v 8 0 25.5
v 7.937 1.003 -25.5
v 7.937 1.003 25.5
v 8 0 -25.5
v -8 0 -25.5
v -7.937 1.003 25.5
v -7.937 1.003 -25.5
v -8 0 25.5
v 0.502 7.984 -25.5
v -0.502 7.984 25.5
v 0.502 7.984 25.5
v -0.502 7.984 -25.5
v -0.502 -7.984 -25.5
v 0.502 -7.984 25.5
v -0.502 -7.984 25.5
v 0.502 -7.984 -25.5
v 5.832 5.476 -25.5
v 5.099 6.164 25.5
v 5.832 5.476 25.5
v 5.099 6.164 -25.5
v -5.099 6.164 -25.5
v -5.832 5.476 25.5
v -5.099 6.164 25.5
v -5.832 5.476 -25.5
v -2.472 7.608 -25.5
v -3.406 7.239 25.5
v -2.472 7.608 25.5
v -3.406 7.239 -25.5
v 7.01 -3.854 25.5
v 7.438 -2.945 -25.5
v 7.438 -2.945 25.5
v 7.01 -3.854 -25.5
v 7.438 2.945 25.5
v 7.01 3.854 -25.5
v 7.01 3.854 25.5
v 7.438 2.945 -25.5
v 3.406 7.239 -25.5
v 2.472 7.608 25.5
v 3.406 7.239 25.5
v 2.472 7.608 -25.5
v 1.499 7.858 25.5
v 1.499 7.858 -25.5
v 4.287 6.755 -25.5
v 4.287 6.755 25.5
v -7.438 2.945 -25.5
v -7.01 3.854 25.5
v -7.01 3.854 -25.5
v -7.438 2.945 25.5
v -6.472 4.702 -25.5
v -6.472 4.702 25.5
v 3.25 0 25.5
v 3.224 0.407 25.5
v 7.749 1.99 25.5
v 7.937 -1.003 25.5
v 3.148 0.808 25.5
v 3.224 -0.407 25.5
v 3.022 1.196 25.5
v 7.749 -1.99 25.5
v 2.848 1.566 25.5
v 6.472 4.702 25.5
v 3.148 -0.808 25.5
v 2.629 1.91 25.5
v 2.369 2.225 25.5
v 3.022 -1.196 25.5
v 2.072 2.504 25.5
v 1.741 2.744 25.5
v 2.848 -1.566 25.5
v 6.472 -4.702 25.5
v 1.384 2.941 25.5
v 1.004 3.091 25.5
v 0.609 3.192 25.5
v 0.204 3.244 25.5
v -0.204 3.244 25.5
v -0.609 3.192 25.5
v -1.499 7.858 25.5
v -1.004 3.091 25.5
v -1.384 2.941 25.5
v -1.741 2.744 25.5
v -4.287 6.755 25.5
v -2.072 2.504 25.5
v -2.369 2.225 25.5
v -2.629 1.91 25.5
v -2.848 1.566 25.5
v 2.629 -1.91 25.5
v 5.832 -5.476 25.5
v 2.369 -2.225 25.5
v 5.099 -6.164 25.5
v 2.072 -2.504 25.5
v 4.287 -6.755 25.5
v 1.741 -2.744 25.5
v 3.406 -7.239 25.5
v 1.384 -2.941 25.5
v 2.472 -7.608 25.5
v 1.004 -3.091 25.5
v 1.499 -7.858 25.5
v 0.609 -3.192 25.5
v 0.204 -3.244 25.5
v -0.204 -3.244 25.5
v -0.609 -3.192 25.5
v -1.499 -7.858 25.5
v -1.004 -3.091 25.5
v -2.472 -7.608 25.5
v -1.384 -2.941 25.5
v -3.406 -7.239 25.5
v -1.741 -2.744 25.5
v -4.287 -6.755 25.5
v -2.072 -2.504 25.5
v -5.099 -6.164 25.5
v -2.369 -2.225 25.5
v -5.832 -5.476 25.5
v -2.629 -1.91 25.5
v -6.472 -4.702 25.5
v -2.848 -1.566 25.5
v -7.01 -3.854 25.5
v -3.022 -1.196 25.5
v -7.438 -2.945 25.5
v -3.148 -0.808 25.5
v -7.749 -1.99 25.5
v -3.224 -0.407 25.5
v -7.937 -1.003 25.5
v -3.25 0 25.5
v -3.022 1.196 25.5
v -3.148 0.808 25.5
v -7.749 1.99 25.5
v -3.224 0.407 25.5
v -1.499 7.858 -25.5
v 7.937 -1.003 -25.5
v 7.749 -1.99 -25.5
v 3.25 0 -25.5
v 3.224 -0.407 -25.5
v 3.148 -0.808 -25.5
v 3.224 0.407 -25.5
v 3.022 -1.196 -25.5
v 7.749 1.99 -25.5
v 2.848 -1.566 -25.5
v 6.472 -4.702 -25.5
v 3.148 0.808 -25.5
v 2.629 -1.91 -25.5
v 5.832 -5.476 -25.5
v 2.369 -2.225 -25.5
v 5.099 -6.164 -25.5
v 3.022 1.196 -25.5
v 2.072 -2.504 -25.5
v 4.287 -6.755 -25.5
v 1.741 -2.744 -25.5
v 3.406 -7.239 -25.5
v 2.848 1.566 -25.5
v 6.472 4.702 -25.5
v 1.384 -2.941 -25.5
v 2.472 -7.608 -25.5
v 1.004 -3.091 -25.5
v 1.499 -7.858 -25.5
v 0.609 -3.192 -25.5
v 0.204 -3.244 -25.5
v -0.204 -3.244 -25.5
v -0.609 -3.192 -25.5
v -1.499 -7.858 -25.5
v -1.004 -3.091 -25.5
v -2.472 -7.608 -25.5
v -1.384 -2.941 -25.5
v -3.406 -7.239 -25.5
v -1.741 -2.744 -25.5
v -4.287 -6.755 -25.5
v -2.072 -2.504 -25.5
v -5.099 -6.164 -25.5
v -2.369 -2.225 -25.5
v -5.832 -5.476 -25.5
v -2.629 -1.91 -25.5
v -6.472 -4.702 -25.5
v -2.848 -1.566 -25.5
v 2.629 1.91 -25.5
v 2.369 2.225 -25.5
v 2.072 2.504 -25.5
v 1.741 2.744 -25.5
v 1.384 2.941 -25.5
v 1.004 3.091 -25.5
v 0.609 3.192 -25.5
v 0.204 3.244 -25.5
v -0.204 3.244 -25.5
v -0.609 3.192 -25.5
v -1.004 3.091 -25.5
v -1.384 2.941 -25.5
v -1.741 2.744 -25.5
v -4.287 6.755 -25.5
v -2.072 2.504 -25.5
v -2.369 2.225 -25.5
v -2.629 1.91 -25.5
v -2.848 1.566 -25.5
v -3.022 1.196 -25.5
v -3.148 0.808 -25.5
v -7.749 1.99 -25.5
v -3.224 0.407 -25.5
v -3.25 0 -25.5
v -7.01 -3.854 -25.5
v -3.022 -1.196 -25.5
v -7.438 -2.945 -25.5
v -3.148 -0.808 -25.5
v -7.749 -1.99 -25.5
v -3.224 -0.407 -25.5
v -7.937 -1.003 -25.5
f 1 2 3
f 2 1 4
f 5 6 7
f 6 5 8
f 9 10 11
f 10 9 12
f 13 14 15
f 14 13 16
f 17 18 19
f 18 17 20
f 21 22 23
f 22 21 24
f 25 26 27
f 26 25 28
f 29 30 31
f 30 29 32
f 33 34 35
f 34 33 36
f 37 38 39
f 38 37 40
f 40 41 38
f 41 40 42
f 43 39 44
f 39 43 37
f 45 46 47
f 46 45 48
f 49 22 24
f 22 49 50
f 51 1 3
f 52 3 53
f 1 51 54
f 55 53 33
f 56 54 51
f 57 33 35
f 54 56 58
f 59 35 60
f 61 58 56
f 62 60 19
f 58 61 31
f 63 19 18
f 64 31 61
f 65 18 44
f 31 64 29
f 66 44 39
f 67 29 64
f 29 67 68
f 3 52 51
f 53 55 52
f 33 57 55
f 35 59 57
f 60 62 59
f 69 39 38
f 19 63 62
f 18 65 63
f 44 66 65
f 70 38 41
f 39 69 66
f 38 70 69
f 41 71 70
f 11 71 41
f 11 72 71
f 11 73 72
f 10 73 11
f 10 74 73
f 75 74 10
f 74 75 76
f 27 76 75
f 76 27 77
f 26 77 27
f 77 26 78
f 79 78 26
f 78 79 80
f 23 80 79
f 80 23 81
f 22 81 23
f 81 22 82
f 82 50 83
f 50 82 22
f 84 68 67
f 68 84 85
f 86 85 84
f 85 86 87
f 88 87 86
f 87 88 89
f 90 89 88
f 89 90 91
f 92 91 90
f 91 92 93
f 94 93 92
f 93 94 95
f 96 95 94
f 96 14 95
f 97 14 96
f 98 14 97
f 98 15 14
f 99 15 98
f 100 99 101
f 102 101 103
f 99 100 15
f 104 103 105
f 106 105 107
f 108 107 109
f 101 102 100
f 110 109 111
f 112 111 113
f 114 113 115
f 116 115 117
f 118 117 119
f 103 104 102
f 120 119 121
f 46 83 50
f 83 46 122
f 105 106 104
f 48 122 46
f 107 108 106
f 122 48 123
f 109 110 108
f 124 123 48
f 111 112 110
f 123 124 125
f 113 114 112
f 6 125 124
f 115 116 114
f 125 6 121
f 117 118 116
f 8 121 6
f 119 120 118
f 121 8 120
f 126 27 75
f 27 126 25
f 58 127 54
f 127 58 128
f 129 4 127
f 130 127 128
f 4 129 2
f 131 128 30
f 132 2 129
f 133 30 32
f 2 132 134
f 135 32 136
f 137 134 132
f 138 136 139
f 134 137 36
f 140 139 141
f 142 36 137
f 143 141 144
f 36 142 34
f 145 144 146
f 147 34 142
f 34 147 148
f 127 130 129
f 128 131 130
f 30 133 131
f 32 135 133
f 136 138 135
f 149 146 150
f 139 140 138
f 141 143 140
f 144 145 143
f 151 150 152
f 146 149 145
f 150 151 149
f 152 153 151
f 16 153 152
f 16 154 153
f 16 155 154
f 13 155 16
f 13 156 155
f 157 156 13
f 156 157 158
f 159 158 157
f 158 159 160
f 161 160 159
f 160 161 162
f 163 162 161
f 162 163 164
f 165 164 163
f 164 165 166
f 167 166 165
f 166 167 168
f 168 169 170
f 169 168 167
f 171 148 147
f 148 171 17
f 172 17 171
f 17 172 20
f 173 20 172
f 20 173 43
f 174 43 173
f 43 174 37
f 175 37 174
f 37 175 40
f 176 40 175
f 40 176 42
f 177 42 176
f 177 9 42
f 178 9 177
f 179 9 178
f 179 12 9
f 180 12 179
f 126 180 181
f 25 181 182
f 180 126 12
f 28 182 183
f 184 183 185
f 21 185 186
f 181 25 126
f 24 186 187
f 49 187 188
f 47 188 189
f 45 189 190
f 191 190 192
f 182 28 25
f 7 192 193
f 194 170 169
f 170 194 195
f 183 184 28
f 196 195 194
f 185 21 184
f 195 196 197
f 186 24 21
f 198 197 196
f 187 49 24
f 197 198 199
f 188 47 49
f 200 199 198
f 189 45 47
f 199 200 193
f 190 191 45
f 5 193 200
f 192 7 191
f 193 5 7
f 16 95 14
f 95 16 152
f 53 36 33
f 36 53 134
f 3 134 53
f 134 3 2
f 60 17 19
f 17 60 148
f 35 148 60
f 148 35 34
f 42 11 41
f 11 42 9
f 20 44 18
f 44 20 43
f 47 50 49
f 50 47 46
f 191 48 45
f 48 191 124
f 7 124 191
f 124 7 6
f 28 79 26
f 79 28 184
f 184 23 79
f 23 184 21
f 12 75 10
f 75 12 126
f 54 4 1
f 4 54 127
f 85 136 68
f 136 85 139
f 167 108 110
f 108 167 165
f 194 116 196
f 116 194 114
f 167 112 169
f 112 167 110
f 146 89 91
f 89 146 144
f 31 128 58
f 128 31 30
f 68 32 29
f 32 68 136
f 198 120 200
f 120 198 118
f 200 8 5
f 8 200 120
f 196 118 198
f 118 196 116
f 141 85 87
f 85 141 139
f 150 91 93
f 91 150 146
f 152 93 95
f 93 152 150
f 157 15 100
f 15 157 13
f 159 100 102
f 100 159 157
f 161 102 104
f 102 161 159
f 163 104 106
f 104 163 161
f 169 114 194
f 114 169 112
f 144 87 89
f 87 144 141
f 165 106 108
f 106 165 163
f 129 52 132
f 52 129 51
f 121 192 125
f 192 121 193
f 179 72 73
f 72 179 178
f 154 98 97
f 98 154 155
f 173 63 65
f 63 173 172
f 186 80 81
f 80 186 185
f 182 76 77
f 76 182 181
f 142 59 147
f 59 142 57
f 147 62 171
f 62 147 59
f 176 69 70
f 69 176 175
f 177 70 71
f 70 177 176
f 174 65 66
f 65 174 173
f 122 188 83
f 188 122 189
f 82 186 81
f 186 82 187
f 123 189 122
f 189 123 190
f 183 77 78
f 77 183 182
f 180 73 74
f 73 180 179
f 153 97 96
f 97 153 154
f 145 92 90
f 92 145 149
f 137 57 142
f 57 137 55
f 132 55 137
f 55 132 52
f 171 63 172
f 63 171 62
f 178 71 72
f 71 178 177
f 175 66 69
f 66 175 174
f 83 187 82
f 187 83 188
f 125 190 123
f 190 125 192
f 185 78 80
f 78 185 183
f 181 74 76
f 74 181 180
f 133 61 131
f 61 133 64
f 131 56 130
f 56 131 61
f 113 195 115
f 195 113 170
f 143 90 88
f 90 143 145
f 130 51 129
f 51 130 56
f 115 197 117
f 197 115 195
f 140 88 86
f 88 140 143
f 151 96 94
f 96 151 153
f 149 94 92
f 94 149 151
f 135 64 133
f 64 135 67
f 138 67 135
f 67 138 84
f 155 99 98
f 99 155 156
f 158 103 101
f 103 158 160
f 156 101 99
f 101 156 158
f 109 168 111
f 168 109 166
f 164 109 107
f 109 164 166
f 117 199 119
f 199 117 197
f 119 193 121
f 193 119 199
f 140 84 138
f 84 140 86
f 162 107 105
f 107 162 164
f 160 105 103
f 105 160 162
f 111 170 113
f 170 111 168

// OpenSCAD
$fn = 50;


difference() {
	union() {
		translate(v = [0, 0, -25.5000000000]) {
			cylinder(h = 51, r = 8.0000000000);
		}
	}
	union() {
		translate(v = [0, 0, -100.0000000000]) {
			cylinder(h = 200, r = 3.2500000000);
		}
	}
}
